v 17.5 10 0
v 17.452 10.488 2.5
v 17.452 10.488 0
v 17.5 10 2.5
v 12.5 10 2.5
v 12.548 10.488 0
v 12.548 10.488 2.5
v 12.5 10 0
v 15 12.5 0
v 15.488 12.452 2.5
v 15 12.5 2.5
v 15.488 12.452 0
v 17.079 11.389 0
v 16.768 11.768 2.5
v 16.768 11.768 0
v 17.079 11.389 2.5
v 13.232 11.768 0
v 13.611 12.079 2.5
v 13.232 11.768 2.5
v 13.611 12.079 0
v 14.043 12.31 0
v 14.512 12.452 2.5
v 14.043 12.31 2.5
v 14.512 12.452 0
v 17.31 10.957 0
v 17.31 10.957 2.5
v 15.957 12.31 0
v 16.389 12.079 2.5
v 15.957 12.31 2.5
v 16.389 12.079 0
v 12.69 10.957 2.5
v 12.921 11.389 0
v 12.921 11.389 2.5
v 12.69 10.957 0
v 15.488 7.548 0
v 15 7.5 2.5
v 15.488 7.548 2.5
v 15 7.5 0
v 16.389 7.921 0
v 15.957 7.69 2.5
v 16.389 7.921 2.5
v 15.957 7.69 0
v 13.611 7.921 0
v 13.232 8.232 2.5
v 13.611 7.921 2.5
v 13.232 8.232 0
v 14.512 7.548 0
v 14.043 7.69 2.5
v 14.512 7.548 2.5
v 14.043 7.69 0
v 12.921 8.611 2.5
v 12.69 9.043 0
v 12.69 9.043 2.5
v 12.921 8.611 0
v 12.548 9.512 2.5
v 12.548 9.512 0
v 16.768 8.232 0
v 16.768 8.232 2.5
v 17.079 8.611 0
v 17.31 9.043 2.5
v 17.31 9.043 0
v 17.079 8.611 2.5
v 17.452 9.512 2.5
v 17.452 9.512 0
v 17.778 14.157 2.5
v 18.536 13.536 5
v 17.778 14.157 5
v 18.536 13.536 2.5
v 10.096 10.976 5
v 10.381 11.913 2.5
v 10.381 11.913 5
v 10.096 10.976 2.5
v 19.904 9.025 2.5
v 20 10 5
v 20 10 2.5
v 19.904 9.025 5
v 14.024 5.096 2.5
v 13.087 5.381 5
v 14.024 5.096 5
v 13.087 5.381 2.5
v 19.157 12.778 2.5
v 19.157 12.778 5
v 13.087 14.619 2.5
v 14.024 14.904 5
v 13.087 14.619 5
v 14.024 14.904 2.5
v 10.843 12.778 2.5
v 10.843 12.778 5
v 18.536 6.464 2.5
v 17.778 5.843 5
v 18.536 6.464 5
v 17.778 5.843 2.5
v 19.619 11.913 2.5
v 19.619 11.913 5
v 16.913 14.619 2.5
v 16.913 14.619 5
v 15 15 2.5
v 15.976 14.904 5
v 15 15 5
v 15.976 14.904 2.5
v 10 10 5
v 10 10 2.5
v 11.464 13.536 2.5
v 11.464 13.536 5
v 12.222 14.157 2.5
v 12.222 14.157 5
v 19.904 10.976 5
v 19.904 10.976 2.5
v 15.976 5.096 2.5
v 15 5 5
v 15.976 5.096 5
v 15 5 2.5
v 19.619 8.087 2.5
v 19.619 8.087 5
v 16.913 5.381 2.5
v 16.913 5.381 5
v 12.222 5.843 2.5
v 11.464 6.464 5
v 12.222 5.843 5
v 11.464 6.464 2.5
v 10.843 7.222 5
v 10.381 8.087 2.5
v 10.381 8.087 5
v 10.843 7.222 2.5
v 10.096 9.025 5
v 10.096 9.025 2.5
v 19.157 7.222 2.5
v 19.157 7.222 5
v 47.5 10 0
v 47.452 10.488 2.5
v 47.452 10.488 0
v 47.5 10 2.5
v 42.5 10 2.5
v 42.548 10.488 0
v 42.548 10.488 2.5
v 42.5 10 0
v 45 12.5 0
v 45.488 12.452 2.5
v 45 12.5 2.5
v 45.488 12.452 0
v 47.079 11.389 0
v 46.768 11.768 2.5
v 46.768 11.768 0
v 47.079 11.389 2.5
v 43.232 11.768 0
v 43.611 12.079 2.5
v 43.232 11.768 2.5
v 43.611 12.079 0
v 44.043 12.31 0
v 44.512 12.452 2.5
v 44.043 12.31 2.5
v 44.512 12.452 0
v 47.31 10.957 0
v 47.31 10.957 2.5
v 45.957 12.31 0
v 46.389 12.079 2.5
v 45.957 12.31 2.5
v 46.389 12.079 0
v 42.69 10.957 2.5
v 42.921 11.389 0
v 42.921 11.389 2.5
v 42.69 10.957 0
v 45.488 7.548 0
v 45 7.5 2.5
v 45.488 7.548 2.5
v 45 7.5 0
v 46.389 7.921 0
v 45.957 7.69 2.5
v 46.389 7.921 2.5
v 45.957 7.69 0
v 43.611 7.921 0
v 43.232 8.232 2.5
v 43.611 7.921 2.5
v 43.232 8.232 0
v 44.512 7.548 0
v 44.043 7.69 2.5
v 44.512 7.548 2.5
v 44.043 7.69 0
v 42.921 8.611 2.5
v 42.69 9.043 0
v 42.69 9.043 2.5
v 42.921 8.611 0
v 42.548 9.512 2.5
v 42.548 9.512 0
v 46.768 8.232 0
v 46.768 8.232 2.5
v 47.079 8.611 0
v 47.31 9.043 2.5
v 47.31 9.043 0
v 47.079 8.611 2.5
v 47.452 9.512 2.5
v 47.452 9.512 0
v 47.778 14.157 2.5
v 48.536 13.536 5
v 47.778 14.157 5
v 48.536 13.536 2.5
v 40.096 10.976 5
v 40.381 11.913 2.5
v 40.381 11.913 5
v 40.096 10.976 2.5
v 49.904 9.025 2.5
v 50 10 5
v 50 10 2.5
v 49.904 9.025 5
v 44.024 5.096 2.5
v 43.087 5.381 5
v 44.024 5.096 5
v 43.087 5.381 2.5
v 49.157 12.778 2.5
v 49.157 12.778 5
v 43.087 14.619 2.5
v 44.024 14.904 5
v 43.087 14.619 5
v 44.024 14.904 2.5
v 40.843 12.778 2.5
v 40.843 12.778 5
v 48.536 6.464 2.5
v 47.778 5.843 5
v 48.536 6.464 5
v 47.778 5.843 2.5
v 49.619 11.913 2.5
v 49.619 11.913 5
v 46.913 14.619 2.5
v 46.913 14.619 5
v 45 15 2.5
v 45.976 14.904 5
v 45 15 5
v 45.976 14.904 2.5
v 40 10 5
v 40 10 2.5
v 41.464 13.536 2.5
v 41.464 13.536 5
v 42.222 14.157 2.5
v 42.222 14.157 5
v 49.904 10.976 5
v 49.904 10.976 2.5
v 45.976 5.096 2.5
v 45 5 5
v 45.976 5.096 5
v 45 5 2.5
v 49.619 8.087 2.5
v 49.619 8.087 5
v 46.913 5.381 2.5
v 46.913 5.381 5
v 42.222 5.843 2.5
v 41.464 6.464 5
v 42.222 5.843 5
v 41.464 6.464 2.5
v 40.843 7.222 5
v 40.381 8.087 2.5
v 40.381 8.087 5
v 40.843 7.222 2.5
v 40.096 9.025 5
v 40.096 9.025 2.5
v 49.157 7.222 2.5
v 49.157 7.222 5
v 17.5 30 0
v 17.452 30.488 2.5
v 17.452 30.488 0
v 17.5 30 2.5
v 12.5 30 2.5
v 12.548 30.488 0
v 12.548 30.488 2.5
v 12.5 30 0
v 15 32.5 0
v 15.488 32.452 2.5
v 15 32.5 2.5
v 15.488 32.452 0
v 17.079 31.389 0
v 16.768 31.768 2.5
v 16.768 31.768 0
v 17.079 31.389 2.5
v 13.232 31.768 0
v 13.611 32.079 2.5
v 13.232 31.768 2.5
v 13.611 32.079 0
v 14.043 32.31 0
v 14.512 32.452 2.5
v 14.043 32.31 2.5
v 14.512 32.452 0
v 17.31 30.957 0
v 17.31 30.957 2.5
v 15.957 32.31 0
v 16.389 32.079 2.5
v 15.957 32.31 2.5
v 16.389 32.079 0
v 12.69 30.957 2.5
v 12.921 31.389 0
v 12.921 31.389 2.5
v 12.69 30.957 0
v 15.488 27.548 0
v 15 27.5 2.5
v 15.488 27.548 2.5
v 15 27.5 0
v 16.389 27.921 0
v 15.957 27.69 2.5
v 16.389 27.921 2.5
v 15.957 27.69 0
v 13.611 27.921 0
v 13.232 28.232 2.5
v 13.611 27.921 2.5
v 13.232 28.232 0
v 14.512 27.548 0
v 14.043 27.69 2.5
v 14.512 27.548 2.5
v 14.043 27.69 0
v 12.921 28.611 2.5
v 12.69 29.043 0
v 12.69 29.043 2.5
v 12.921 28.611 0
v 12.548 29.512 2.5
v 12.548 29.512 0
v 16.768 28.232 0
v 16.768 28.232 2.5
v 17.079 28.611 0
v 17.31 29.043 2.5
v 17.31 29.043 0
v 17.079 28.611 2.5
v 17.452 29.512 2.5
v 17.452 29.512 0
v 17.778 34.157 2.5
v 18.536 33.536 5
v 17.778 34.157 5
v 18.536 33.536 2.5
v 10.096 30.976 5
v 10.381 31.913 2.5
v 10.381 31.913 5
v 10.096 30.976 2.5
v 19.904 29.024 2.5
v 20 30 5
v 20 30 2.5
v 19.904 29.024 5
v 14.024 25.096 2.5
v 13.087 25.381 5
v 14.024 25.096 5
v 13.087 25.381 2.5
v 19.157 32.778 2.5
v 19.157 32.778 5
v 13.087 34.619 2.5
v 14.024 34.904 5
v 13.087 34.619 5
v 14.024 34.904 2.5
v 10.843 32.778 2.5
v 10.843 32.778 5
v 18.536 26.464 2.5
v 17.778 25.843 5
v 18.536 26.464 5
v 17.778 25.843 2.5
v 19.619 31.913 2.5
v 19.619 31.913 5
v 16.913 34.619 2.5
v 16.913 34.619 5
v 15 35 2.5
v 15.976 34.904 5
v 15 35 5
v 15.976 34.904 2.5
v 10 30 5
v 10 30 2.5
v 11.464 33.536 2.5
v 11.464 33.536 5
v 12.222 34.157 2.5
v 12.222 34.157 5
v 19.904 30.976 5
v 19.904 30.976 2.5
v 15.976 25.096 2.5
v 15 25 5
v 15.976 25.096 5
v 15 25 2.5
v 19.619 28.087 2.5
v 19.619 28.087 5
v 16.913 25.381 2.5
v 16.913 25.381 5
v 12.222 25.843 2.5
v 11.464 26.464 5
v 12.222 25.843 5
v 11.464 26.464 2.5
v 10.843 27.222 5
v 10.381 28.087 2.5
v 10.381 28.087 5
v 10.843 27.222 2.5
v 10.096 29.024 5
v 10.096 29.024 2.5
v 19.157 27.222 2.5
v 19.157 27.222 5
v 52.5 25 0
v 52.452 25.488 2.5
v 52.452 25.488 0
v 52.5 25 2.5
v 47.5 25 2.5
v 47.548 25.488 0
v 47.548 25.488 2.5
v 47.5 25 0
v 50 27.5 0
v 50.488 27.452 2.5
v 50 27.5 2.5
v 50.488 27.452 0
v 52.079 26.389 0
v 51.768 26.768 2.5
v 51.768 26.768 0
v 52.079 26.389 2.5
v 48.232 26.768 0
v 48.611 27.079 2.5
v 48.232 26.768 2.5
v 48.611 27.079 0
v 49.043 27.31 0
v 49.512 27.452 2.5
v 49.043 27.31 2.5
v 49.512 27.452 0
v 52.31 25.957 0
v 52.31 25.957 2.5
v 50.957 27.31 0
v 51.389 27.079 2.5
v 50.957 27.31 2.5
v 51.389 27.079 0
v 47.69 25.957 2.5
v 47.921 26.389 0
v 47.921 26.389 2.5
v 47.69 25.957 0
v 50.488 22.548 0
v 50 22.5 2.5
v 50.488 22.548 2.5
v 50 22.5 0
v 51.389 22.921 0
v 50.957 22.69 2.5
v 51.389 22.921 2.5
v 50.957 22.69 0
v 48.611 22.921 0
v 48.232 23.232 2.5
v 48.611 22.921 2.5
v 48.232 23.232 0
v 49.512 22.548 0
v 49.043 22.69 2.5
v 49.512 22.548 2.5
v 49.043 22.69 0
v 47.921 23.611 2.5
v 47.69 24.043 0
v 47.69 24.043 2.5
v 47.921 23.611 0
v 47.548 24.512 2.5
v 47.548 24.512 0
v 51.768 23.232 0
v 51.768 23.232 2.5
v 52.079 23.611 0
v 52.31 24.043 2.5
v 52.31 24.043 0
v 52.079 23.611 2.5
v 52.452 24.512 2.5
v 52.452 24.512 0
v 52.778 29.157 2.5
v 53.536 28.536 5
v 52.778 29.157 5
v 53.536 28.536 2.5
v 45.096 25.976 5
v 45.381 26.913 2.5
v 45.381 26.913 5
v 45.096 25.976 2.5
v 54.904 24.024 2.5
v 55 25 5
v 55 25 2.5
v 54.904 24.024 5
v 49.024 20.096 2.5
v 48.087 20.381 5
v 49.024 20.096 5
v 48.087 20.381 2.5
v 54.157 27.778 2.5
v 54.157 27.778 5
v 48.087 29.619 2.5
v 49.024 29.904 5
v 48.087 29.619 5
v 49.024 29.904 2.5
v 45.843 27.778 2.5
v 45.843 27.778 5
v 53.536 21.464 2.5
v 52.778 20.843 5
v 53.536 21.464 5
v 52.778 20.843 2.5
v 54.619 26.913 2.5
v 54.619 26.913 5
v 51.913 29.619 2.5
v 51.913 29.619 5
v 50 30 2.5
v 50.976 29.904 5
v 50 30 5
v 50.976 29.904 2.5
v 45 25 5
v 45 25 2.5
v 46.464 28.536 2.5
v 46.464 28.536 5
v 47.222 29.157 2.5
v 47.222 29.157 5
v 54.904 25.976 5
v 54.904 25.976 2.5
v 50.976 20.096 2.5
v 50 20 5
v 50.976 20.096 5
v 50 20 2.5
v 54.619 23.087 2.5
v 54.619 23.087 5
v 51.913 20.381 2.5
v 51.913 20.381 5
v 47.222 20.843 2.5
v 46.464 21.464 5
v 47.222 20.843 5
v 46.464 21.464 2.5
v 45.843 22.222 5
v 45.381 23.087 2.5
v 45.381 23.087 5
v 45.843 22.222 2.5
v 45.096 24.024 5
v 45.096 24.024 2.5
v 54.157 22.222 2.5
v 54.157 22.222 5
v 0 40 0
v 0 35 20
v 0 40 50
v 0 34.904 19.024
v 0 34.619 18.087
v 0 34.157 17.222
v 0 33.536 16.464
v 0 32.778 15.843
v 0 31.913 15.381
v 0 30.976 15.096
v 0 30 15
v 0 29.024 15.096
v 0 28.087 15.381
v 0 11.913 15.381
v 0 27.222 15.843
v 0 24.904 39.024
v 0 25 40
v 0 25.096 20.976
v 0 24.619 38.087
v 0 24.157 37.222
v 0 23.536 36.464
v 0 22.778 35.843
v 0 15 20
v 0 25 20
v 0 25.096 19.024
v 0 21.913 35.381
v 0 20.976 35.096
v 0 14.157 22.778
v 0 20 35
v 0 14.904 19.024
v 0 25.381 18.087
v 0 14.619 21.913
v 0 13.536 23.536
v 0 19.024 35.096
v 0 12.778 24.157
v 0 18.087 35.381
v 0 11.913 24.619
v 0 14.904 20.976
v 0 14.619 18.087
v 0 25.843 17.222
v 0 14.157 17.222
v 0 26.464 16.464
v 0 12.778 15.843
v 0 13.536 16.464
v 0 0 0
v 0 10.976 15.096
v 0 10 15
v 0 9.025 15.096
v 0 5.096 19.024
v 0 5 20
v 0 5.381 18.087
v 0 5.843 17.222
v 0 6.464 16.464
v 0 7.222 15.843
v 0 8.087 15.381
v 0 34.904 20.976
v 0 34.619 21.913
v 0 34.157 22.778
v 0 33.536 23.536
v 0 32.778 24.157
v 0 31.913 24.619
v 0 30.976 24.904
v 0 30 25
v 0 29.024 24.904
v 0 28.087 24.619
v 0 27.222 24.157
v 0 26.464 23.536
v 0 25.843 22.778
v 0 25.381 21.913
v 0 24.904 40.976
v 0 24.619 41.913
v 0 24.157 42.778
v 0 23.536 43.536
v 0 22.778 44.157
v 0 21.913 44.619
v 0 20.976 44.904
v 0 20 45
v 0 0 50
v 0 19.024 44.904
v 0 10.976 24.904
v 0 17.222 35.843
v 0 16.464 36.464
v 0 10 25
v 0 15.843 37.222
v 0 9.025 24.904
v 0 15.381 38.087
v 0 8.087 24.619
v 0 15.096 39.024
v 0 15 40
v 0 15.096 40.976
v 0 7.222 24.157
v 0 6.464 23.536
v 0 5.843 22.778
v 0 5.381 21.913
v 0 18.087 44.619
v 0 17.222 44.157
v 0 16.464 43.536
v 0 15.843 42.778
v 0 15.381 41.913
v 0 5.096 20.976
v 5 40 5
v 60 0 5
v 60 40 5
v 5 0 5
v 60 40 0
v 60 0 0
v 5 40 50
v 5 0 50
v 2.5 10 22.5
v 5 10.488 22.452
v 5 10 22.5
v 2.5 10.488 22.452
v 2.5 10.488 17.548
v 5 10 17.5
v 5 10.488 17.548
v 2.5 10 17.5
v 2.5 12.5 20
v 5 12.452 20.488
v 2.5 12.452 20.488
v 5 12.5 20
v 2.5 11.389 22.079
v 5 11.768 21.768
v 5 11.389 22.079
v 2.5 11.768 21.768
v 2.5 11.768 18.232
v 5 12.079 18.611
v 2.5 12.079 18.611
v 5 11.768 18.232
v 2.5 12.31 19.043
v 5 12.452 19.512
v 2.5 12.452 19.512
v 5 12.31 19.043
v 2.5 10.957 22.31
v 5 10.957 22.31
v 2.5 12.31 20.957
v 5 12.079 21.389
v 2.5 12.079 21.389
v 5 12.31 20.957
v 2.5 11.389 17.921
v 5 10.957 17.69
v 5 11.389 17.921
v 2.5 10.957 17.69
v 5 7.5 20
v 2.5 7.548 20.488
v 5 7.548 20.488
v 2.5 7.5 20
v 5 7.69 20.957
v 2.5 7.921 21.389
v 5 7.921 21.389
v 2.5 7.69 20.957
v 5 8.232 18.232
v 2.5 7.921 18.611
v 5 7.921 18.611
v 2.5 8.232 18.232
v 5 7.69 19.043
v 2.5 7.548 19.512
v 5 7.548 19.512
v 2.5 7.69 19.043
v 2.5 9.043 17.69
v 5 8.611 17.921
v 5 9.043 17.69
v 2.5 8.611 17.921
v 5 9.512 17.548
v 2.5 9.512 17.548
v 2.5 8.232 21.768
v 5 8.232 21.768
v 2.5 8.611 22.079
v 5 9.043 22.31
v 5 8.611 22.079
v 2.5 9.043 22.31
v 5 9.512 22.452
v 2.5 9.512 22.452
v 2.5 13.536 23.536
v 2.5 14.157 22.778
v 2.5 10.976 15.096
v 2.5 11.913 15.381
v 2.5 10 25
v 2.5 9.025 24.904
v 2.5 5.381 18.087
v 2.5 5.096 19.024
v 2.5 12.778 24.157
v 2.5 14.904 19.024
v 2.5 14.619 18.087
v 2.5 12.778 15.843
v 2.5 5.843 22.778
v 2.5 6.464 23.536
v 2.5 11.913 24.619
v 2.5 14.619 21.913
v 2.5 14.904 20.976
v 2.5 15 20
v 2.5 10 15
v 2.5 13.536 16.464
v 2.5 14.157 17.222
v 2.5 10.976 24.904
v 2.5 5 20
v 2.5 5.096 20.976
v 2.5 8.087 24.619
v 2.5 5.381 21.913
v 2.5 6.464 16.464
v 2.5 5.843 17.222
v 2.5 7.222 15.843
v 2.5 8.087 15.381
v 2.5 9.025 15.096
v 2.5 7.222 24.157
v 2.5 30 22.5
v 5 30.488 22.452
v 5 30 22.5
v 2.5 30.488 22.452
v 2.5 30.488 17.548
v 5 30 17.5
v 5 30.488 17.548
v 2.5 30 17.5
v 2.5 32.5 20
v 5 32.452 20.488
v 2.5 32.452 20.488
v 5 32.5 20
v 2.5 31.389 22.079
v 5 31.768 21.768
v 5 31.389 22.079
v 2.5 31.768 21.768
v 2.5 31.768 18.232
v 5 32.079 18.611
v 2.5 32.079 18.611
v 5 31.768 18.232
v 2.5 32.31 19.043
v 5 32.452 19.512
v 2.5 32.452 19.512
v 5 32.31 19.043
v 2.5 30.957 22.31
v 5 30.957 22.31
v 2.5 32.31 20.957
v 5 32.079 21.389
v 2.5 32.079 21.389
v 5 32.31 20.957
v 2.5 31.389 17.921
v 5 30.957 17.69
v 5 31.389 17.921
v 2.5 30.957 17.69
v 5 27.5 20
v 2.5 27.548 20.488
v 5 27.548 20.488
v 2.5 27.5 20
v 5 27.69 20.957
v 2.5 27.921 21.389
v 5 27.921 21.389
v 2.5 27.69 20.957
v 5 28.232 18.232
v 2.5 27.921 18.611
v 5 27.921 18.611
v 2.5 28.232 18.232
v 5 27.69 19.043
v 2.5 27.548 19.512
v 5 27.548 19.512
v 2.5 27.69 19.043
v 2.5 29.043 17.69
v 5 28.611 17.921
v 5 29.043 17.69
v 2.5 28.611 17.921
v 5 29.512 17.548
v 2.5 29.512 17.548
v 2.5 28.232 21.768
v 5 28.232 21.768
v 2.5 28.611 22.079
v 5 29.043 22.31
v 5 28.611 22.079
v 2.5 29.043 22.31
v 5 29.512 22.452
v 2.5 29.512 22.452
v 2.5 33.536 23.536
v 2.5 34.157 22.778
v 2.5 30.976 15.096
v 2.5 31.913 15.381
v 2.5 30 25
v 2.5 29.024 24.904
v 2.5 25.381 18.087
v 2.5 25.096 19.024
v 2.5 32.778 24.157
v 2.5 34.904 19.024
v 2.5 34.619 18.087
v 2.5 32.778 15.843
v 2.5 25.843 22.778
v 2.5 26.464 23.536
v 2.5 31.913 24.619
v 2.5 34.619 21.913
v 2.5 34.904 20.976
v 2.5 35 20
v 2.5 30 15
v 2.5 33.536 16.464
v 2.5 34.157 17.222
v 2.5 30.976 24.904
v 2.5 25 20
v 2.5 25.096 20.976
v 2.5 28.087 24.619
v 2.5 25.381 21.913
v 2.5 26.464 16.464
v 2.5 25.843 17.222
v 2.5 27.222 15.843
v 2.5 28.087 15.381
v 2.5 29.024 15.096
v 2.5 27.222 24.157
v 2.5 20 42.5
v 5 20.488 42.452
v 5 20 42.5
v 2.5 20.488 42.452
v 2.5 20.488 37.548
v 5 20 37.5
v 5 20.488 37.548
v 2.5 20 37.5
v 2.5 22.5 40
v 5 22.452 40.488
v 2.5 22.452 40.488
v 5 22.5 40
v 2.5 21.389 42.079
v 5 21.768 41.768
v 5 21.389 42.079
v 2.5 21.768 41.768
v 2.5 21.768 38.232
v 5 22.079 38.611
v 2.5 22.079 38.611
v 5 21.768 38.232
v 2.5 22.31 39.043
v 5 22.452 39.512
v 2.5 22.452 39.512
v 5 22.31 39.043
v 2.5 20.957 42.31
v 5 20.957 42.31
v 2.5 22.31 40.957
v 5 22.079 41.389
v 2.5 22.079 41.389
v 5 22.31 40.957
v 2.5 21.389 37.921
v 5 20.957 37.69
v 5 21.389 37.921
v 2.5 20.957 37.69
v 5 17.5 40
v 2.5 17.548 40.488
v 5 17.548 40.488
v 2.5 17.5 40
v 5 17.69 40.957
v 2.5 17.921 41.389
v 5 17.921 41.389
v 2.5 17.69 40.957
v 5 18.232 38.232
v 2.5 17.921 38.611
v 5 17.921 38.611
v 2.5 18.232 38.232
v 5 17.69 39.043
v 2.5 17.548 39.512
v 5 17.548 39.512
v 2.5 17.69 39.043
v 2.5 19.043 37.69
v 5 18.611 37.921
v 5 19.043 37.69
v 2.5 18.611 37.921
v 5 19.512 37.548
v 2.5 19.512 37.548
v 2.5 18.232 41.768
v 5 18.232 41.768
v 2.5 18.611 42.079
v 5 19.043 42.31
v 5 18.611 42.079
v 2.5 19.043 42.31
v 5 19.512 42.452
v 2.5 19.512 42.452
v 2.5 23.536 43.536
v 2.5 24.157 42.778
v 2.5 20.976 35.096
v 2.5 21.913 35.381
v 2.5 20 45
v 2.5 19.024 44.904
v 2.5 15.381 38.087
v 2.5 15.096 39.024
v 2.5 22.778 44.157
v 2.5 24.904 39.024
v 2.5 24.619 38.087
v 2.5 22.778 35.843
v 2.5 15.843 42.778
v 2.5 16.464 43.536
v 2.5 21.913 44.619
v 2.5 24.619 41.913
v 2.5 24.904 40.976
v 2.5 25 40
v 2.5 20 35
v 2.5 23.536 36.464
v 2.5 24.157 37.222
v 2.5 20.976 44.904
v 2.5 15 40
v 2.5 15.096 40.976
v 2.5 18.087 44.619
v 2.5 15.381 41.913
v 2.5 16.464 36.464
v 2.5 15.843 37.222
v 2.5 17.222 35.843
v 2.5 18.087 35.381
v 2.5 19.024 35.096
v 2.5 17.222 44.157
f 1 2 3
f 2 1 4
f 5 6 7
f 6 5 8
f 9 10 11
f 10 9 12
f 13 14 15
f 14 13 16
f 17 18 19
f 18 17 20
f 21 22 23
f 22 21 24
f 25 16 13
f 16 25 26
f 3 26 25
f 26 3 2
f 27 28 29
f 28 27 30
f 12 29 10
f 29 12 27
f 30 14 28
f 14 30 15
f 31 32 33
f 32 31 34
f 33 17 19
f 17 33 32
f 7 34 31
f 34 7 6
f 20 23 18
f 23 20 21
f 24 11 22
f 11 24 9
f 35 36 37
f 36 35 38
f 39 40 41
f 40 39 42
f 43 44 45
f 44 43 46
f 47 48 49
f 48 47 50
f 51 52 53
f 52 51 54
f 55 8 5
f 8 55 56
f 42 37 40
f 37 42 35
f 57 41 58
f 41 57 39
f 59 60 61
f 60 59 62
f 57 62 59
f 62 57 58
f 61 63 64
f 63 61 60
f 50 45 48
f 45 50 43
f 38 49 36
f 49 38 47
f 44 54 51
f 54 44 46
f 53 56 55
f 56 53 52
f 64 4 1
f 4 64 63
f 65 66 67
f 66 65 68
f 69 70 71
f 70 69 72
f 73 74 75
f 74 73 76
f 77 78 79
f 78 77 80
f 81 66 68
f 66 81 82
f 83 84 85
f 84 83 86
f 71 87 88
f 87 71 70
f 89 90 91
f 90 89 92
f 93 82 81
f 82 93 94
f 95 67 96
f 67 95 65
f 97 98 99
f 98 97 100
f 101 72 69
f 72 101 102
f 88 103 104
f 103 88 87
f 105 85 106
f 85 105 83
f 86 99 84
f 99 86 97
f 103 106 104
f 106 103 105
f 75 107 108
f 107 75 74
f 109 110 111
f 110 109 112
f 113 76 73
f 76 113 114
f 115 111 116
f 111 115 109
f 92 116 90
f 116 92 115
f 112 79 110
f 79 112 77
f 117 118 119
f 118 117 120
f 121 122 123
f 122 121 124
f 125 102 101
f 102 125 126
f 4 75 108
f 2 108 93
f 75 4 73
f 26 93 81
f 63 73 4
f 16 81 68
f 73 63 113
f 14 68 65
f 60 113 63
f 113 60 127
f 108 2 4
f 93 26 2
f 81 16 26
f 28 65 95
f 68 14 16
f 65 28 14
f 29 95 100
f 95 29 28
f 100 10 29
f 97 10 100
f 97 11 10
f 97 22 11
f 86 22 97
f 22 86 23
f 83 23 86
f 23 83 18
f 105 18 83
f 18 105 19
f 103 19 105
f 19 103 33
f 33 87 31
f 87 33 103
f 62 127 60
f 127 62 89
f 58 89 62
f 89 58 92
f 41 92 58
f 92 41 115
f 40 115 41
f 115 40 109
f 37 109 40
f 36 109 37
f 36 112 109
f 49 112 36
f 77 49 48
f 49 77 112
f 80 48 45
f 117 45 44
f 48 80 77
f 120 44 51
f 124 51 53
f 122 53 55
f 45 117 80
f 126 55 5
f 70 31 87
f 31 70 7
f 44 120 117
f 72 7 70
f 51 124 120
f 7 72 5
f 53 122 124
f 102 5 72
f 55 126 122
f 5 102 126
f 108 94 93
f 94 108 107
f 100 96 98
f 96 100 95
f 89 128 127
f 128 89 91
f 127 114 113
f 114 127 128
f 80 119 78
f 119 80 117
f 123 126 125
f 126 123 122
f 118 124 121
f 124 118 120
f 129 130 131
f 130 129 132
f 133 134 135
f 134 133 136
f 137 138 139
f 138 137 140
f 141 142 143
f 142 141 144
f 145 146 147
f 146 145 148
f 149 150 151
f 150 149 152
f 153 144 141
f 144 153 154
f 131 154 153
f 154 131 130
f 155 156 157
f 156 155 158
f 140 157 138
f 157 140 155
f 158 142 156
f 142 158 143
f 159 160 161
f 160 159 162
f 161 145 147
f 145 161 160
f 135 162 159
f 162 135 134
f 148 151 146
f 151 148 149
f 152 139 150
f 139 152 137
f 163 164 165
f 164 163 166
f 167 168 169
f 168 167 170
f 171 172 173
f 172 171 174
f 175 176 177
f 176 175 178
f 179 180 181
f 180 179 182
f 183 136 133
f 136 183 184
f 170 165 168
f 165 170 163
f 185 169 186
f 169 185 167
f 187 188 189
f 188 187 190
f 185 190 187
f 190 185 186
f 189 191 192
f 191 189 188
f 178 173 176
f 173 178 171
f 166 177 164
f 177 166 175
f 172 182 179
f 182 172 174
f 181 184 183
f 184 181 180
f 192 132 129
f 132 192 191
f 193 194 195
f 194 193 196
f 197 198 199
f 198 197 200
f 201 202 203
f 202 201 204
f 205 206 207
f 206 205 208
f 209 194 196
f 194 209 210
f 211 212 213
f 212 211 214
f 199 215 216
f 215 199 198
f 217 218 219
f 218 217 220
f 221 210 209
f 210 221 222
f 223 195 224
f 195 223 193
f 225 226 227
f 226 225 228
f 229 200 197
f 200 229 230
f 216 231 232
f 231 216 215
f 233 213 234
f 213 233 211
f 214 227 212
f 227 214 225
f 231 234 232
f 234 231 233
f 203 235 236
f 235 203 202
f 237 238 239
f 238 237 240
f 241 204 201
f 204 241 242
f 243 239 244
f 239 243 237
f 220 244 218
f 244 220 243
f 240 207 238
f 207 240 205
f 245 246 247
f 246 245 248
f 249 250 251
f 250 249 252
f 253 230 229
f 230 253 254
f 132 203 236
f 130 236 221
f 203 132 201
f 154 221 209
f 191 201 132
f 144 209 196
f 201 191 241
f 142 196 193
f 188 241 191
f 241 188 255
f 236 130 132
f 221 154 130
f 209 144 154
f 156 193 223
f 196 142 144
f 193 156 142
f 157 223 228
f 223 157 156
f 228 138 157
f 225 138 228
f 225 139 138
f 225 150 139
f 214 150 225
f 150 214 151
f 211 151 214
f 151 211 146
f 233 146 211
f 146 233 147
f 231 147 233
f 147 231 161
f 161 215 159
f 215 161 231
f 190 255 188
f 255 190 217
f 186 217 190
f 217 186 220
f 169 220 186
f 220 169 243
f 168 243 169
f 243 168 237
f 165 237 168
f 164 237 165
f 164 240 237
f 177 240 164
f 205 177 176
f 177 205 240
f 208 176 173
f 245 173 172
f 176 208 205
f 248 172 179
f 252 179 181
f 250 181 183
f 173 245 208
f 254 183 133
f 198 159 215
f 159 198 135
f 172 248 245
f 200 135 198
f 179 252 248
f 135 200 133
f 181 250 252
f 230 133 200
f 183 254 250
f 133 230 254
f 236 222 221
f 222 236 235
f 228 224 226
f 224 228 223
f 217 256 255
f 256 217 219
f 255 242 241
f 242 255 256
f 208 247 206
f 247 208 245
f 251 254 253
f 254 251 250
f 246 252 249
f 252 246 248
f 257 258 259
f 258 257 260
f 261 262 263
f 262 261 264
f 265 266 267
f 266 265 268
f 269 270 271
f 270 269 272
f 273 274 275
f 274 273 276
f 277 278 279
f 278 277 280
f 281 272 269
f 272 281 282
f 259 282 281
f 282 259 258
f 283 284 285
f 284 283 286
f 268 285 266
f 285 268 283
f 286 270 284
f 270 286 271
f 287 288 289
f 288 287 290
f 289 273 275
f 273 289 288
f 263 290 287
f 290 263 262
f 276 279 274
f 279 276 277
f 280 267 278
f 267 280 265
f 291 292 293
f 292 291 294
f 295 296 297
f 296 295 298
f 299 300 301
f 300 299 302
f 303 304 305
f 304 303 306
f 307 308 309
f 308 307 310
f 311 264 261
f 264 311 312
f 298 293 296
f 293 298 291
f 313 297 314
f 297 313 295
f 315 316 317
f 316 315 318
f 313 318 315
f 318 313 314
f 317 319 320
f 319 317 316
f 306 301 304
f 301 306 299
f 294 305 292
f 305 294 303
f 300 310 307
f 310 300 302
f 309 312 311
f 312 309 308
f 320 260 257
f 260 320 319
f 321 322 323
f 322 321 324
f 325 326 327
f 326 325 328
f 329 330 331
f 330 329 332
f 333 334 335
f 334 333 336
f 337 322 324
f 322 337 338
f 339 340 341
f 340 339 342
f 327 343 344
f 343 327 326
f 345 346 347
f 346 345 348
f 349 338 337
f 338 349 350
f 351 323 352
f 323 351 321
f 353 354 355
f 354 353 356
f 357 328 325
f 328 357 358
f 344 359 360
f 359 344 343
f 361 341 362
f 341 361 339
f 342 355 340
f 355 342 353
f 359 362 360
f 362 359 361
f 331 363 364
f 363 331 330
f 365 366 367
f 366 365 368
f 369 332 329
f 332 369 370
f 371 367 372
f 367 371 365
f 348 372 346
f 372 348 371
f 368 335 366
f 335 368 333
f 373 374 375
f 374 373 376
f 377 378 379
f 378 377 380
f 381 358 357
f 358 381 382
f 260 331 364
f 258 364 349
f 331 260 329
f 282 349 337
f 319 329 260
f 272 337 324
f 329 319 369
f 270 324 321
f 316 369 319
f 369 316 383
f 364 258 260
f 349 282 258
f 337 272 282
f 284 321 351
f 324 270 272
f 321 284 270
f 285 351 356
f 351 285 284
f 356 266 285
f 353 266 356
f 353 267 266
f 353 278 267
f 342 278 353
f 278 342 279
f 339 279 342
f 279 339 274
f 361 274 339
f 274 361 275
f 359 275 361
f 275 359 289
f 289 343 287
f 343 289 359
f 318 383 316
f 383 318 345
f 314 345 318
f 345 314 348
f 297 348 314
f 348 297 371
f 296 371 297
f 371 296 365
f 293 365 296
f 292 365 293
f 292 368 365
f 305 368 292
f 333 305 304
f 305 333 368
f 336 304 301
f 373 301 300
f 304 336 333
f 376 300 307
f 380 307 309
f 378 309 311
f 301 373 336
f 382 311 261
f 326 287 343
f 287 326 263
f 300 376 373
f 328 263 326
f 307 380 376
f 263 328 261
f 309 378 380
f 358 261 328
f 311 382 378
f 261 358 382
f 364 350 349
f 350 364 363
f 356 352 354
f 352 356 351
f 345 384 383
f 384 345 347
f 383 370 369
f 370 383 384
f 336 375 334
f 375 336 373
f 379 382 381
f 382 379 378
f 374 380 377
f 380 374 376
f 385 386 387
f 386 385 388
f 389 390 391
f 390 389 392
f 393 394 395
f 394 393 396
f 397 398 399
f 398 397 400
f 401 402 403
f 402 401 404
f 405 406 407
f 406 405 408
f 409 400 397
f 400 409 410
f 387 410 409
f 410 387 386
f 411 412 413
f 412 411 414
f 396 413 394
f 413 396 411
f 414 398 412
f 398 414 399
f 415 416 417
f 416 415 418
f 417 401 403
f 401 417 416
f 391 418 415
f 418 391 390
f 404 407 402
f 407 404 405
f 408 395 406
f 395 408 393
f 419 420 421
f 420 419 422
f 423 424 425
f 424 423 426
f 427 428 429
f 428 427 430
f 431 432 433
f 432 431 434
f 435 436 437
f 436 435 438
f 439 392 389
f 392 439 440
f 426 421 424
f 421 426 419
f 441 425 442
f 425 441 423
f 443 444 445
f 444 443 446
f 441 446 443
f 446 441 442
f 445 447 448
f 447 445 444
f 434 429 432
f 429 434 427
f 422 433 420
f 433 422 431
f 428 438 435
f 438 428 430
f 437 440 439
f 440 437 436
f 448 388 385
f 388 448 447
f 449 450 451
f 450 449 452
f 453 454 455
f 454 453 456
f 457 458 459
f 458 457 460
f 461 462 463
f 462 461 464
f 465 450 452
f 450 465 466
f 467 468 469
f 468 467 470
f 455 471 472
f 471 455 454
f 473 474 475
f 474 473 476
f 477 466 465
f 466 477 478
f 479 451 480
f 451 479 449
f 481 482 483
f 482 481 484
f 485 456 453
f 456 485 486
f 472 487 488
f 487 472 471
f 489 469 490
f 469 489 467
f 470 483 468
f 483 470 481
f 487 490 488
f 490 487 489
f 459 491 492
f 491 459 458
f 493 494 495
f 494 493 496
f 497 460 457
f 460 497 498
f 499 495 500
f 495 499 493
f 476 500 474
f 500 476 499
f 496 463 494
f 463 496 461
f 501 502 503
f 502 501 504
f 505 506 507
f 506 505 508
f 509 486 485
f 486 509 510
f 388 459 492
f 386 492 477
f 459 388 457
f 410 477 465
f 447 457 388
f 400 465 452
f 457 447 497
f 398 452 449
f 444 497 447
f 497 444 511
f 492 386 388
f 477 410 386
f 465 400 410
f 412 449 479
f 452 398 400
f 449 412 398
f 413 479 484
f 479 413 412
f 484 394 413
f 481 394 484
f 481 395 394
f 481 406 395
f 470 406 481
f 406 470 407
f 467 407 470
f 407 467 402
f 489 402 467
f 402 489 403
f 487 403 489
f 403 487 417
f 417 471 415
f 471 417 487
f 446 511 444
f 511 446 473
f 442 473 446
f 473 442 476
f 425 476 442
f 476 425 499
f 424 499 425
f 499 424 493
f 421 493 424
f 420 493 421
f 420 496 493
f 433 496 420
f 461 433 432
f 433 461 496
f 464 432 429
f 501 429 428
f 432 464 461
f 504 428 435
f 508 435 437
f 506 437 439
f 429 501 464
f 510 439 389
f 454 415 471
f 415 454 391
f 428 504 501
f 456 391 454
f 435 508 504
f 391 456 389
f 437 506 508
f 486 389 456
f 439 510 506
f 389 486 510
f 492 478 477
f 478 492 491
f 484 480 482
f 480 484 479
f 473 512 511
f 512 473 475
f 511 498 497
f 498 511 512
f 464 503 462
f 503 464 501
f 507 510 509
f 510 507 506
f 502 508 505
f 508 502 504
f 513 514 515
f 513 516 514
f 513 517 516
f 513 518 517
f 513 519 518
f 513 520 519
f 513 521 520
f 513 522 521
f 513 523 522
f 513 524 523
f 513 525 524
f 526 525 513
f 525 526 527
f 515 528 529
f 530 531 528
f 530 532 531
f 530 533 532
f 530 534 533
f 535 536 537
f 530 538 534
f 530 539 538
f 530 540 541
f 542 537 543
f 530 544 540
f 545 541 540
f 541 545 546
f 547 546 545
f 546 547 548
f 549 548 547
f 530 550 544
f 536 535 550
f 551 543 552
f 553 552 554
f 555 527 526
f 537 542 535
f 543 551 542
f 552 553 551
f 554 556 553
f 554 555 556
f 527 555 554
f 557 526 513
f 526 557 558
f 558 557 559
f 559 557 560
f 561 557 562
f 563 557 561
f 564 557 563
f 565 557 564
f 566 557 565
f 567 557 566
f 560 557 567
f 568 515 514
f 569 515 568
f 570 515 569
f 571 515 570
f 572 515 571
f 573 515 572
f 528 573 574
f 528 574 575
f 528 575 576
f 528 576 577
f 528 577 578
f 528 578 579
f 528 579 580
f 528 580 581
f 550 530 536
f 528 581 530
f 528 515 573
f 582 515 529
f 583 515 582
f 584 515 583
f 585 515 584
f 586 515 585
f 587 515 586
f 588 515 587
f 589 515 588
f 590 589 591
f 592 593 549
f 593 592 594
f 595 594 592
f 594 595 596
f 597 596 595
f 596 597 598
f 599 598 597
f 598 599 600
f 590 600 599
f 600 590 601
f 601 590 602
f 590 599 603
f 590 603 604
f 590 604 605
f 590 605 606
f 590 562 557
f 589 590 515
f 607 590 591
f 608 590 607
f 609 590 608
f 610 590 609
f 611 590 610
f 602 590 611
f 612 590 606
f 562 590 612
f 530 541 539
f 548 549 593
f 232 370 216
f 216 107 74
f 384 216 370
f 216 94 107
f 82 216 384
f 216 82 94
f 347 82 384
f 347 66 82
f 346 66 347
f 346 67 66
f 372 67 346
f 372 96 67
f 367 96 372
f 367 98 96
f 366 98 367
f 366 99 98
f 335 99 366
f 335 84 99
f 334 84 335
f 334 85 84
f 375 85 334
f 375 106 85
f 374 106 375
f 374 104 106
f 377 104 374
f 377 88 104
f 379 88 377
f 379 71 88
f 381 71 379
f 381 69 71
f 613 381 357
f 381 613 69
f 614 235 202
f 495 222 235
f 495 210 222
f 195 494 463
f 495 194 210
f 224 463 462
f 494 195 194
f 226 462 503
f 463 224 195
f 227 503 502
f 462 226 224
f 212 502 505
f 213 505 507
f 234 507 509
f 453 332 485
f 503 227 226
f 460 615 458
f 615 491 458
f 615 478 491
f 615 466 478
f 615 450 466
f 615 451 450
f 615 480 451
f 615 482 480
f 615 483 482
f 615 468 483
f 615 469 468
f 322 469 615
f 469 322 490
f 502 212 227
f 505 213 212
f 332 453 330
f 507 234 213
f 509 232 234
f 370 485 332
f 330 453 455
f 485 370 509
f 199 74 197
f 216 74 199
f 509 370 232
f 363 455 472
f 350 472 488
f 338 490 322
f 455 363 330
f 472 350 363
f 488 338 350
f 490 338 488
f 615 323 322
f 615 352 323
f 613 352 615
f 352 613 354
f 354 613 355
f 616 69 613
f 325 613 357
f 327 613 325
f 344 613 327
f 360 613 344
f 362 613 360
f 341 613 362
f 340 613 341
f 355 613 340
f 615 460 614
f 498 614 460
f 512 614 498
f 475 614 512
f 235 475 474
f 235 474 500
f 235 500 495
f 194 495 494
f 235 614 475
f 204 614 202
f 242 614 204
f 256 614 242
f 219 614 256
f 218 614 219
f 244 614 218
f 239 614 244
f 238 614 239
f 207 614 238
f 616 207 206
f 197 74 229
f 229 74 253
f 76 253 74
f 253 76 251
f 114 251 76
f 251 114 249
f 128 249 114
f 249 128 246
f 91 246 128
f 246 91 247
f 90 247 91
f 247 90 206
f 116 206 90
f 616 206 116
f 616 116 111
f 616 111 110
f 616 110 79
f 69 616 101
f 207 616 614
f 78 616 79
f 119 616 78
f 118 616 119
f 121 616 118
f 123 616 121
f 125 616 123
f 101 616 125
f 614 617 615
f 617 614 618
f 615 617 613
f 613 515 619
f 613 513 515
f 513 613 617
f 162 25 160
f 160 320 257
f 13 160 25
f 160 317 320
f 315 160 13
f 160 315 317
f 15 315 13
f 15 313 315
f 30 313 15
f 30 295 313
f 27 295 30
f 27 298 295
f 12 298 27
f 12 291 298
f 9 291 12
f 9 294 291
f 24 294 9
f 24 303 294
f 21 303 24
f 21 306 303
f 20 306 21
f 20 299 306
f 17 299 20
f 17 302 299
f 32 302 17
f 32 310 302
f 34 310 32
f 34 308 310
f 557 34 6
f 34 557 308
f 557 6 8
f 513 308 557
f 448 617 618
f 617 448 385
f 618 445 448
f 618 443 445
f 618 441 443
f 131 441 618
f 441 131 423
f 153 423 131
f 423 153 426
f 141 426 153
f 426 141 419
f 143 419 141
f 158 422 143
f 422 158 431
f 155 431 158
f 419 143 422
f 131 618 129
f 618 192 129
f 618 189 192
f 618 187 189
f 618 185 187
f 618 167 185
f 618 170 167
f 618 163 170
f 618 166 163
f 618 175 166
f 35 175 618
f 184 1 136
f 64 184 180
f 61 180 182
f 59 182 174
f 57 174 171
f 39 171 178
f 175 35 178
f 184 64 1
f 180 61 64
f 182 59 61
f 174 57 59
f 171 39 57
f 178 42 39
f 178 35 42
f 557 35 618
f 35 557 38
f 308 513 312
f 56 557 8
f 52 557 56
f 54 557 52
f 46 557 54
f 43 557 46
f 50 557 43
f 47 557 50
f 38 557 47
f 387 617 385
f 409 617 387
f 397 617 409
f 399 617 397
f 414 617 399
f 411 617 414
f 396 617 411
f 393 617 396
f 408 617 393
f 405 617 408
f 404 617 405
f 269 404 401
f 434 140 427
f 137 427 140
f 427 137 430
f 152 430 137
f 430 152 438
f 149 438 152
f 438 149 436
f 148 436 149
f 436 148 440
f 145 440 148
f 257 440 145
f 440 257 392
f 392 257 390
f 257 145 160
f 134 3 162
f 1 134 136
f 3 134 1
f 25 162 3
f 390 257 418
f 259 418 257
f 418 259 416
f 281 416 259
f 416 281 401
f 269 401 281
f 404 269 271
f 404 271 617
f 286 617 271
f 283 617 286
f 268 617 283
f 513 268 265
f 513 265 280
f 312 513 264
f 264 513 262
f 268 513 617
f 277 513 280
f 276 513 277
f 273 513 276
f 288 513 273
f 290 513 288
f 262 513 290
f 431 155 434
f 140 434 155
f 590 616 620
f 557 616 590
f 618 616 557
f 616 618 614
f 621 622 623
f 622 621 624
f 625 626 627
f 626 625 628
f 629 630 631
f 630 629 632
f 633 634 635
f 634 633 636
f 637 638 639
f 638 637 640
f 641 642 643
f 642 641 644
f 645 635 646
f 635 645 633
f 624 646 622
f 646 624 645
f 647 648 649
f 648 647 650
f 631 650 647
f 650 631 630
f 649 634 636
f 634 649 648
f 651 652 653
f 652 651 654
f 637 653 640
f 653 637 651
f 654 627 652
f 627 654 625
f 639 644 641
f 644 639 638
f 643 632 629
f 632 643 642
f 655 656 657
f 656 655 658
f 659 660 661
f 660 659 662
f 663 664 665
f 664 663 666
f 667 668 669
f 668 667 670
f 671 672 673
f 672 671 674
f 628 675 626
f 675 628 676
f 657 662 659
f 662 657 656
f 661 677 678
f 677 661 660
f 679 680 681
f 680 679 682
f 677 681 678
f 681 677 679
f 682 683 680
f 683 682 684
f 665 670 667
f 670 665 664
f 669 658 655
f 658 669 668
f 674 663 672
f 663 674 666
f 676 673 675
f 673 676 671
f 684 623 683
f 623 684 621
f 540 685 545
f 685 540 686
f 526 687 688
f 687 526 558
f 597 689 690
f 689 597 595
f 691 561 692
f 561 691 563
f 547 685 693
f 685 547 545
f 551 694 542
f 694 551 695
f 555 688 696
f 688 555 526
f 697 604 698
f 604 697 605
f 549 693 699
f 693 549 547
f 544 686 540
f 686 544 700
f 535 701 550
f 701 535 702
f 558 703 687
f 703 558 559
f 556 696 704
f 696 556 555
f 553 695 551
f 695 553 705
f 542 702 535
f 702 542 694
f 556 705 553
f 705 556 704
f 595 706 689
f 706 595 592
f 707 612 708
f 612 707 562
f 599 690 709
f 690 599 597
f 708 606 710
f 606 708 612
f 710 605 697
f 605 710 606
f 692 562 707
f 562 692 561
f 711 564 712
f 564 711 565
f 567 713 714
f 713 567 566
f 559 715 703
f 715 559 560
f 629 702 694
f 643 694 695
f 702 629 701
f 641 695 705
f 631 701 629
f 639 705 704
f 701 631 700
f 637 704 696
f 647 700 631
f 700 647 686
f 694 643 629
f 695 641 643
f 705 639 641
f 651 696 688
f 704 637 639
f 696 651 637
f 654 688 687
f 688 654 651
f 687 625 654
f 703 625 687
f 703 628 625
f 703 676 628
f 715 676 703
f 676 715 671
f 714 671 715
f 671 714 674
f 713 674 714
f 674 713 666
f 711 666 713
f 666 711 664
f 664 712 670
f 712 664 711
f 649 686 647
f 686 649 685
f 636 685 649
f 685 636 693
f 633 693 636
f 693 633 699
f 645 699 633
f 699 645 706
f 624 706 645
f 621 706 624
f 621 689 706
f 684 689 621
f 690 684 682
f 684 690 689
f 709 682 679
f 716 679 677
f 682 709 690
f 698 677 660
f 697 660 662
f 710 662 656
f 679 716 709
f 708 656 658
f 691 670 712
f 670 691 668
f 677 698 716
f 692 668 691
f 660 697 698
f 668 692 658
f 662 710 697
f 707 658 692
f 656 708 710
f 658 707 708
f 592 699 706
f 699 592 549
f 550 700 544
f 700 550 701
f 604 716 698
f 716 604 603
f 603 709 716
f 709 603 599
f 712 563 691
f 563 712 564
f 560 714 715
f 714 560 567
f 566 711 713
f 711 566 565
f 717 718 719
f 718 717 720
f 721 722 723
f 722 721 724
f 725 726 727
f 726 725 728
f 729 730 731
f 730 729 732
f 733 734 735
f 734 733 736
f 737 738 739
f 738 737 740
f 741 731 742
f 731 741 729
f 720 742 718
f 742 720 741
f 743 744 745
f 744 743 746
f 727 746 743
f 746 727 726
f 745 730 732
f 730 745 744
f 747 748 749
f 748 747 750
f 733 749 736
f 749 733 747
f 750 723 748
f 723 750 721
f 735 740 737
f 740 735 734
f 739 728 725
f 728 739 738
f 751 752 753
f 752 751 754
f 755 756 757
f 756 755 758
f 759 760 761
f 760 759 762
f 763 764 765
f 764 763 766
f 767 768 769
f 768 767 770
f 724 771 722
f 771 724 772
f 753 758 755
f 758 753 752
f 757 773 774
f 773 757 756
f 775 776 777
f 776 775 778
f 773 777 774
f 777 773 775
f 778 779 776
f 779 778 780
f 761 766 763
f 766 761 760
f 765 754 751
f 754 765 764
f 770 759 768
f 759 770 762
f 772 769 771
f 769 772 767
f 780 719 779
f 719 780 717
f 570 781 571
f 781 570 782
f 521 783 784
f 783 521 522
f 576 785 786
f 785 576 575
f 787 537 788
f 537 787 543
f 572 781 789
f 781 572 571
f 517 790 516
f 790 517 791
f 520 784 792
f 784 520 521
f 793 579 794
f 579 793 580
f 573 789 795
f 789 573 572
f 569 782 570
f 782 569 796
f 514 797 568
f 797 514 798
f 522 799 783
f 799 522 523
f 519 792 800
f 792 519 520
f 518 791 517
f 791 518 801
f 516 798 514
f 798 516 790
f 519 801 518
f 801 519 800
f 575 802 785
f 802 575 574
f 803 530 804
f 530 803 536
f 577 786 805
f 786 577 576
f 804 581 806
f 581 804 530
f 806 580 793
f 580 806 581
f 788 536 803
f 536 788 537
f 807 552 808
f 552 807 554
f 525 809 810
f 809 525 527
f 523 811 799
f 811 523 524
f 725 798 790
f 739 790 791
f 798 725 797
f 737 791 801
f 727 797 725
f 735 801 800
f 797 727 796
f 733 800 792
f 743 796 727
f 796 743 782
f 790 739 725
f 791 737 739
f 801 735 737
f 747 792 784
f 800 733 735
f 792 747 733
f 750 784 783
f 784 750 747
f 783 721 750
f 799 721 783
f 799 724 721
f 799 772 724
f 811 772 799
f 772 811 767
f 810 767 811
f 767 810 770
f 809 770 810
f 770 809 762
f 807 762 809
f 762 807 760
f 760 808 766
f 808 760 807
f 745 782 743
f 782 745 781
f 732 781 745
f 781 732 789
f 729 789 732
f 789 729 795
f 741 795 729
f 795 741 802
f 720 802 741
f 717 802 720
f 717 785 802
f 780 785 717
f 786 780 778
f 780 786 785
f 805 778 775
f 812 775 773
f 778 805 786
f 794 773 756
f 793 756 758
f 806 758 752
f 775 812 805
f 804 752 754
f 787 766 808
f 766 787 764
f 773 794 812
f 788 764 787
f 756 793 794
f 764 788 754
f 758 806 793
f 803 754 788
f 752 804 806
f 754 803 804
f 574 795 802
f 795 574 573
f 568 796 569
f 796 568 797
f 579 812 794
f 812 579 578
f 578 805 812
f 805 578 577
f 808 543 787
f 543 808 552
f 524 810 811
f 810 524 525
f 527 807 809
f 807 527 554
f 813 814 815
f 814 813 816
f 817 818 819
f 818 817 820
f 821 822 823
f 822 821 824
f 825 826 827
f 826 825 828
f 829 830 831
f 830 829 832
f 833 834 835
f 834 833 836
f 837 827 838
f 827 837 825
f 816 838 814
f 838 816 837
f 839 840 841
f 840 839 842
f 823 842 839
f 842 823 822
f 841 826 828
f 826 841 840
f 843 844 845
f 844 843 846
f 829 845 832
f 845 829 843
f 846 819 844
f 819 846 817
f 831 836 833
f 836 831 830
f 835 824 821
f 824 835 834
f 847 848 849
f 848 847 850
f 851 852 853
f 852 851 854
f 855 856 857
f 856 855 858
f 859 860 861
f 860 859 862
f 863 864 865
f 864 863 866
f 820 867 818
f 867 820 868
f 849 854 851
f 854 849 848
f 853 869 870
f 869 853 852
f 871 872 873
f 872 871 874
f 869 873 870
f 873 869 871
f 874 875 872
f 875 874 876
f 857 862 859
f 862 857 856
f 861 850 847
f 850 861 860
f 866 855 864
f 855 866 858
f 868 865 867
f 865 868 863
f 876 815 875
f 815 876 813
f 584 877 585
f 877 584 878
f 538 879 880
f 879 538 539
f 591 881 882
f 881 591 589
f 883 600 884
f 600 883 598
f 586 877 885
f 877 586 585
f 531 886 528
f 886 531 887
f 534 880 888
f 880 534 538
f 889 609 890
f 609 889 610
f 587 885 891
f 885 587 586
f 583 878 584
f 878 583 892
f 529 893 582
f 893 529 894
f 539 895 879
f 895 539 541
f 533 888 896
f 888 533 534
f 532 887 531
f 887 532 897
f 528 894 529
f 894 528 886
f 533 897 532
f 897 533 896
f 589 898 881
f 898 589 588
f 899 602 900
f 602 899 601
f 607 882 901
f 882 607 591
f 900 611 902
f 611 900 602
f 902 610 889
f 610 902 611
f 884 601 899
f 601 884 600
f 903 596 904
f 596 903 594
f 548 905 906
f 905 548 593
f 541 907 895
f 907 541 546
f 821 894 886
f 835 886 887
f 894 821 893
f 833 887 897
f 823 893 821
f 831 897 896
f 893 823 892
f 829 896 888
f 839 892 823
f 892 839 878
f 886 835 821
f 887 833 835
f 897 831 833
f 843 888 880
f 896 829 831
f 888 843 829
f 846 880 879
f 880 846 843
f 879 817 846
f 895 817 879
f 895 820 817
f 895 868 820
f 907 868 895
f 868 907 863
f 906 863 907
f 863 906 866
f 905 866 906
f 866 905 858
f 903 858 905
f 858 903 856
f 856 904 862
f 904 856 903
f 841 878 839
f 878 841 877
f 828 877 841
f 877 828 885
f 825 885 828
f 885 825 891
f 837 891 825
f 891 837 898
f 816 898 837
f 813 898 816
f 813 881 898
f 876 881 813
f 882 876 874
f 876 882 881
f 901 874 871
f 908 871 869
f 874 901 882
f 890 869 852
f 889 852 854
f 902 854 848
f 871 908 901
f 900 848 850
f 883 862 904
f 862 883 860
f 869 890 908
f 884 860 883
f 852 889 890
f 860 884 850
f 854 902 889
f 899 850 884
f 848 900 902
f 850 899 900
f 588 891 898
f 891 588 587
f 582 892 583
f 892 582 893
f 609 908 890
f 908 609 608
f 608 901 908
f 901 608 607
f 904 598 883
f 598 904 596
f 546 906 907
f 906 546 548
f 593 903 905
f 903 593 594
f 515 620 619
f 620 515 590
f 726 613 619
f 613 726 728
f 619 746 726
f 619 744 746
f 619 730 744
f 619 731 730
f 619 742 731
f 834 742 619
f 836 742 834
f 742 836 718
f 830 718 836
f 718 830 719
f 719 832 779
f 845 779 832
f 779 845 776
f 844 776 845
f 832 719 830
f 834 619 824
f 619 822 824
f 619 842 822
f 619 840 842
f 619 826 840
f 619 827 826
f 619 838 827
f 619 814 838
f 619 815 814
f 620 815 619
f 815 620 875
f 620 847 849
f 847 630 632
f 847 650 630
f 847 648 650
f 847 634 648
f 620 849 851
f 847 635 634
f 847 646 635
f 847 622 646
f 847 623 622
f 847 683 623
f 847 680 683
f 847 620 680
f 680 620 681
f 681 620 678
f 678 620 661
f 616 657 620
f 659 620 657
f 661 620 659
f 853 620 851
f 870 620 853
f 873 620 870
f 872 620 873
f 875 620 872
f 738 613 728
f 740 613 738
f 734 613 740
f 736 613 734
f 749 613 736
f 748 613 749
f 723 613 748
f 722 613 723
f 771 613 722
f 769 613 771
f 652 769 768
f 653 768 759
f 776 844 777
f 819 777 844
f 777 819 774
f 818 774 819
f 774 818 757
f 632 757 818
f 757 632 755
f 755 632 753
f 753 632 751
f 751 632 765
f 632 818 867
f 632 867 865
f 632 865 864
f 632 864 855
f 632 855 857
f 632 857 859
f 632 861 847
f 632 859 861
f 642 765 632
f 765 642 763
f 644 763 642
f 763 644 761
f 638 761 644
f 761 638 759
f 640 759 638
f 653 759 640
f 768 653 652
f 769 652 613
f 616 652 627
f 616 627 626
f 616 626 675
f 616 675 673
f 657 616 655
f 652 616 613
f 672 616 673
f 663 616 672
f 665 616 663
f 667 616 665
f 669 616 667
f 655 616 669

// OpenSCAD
// L-Shaped Mounting Bracket for Sensor-to-Frame Connection
// All dimensions in mm

// Parameters
$fn = 32; // Smooth circles for printing

// Material thickness
thickness = 5;

// Flange dimensions (from reference)
horizontal_length = 60;
horizontal_width = 40;
vertical_height = 50;
vertical_width = 40;

// Hole parameters
hole_diameter = 5;          // M5 clearance holes
counterbore_diameter = 10;  // For M5 socket head cap screws
counterbore_depth = 3;      // Depth for flush mounting

// Hole positions on horizontal flange (from reference sketch)
// Measured from corner where flanges meet
h_holes = [
    [15, 10],   // Bottom left hole
    [45, 10],   // Bottom right hole
    [15, 30],   // Top left hole
    [50, 25],   // Offset hole (irregular pattern)
];

// Hole positions on vertical flange (from reference sketch)
// x = horizontal position, y = height from bend
v_holes = [
    [10, 15],   // Lower left
    [30, 15],   // Lower right
    [20, 35],   // Upper center (offset - irregular)
];

// Fillet radius at the bend
fillet_radius = 5;

module counterbore_hole(depth, hole_d, cb_d, cb_depth) {
    union() {
        // Through hole
        cylinder(h = depth + 1, d = hole_d, center = false);
        // Counterbore from top
        translate([0, 0, depth - cb_depth])
            cylinder(h = cb_depth + 1, d = cb_d, center = false);
    }
}

module horizontal_flange() {
    difference() {
        // Base plate
        cube([horizontal_length, horizontal_width, thickness]);
        
        // Mounting holes with counterbores
        for (pos = h_holes) {
            translate([pos[0], pos[1], -0.5])
                counterbore_hole(thickness + 1, hole_diameter, counterbore_diameter, counterbore_depth);
        }
    }
}

module vertical_flange() {
    difference() {
        // Vertical plate
        translate([0, 0, thickness])
            cube([thickness, vertical_width, vertical_height - thickness]);
        
        // Mounting holes with counterbores (from outside face)
        for (pos = v_holes) {
            translate([thickness + 0.5, pos[0], thickness + pos[1]])
                rotate([0, -90, 0])
                    counterbore_hole(thickness + 1, hole_diameter, counterbore_diameter, counterbore_depth);
        }
    }
}

module inside_fillet() {
    // Reinforcing fillet at the inside corner of the L
    translate([thickness, 0, thickness])
        rotate([-90, 0, 0])
            linear_extrude(height = min(horizontal_width, vertical_width))
                polygon([
                    [0, 0],
                    [fillet_radius, 0],
                    [0, fillet_radius]
                ]);
}

module l_bracket() {
    union() {
        horizontal_flange();
        vertical_flange();
        inside_fillet();
    }
}

// Render the bracket
l_bracket();
